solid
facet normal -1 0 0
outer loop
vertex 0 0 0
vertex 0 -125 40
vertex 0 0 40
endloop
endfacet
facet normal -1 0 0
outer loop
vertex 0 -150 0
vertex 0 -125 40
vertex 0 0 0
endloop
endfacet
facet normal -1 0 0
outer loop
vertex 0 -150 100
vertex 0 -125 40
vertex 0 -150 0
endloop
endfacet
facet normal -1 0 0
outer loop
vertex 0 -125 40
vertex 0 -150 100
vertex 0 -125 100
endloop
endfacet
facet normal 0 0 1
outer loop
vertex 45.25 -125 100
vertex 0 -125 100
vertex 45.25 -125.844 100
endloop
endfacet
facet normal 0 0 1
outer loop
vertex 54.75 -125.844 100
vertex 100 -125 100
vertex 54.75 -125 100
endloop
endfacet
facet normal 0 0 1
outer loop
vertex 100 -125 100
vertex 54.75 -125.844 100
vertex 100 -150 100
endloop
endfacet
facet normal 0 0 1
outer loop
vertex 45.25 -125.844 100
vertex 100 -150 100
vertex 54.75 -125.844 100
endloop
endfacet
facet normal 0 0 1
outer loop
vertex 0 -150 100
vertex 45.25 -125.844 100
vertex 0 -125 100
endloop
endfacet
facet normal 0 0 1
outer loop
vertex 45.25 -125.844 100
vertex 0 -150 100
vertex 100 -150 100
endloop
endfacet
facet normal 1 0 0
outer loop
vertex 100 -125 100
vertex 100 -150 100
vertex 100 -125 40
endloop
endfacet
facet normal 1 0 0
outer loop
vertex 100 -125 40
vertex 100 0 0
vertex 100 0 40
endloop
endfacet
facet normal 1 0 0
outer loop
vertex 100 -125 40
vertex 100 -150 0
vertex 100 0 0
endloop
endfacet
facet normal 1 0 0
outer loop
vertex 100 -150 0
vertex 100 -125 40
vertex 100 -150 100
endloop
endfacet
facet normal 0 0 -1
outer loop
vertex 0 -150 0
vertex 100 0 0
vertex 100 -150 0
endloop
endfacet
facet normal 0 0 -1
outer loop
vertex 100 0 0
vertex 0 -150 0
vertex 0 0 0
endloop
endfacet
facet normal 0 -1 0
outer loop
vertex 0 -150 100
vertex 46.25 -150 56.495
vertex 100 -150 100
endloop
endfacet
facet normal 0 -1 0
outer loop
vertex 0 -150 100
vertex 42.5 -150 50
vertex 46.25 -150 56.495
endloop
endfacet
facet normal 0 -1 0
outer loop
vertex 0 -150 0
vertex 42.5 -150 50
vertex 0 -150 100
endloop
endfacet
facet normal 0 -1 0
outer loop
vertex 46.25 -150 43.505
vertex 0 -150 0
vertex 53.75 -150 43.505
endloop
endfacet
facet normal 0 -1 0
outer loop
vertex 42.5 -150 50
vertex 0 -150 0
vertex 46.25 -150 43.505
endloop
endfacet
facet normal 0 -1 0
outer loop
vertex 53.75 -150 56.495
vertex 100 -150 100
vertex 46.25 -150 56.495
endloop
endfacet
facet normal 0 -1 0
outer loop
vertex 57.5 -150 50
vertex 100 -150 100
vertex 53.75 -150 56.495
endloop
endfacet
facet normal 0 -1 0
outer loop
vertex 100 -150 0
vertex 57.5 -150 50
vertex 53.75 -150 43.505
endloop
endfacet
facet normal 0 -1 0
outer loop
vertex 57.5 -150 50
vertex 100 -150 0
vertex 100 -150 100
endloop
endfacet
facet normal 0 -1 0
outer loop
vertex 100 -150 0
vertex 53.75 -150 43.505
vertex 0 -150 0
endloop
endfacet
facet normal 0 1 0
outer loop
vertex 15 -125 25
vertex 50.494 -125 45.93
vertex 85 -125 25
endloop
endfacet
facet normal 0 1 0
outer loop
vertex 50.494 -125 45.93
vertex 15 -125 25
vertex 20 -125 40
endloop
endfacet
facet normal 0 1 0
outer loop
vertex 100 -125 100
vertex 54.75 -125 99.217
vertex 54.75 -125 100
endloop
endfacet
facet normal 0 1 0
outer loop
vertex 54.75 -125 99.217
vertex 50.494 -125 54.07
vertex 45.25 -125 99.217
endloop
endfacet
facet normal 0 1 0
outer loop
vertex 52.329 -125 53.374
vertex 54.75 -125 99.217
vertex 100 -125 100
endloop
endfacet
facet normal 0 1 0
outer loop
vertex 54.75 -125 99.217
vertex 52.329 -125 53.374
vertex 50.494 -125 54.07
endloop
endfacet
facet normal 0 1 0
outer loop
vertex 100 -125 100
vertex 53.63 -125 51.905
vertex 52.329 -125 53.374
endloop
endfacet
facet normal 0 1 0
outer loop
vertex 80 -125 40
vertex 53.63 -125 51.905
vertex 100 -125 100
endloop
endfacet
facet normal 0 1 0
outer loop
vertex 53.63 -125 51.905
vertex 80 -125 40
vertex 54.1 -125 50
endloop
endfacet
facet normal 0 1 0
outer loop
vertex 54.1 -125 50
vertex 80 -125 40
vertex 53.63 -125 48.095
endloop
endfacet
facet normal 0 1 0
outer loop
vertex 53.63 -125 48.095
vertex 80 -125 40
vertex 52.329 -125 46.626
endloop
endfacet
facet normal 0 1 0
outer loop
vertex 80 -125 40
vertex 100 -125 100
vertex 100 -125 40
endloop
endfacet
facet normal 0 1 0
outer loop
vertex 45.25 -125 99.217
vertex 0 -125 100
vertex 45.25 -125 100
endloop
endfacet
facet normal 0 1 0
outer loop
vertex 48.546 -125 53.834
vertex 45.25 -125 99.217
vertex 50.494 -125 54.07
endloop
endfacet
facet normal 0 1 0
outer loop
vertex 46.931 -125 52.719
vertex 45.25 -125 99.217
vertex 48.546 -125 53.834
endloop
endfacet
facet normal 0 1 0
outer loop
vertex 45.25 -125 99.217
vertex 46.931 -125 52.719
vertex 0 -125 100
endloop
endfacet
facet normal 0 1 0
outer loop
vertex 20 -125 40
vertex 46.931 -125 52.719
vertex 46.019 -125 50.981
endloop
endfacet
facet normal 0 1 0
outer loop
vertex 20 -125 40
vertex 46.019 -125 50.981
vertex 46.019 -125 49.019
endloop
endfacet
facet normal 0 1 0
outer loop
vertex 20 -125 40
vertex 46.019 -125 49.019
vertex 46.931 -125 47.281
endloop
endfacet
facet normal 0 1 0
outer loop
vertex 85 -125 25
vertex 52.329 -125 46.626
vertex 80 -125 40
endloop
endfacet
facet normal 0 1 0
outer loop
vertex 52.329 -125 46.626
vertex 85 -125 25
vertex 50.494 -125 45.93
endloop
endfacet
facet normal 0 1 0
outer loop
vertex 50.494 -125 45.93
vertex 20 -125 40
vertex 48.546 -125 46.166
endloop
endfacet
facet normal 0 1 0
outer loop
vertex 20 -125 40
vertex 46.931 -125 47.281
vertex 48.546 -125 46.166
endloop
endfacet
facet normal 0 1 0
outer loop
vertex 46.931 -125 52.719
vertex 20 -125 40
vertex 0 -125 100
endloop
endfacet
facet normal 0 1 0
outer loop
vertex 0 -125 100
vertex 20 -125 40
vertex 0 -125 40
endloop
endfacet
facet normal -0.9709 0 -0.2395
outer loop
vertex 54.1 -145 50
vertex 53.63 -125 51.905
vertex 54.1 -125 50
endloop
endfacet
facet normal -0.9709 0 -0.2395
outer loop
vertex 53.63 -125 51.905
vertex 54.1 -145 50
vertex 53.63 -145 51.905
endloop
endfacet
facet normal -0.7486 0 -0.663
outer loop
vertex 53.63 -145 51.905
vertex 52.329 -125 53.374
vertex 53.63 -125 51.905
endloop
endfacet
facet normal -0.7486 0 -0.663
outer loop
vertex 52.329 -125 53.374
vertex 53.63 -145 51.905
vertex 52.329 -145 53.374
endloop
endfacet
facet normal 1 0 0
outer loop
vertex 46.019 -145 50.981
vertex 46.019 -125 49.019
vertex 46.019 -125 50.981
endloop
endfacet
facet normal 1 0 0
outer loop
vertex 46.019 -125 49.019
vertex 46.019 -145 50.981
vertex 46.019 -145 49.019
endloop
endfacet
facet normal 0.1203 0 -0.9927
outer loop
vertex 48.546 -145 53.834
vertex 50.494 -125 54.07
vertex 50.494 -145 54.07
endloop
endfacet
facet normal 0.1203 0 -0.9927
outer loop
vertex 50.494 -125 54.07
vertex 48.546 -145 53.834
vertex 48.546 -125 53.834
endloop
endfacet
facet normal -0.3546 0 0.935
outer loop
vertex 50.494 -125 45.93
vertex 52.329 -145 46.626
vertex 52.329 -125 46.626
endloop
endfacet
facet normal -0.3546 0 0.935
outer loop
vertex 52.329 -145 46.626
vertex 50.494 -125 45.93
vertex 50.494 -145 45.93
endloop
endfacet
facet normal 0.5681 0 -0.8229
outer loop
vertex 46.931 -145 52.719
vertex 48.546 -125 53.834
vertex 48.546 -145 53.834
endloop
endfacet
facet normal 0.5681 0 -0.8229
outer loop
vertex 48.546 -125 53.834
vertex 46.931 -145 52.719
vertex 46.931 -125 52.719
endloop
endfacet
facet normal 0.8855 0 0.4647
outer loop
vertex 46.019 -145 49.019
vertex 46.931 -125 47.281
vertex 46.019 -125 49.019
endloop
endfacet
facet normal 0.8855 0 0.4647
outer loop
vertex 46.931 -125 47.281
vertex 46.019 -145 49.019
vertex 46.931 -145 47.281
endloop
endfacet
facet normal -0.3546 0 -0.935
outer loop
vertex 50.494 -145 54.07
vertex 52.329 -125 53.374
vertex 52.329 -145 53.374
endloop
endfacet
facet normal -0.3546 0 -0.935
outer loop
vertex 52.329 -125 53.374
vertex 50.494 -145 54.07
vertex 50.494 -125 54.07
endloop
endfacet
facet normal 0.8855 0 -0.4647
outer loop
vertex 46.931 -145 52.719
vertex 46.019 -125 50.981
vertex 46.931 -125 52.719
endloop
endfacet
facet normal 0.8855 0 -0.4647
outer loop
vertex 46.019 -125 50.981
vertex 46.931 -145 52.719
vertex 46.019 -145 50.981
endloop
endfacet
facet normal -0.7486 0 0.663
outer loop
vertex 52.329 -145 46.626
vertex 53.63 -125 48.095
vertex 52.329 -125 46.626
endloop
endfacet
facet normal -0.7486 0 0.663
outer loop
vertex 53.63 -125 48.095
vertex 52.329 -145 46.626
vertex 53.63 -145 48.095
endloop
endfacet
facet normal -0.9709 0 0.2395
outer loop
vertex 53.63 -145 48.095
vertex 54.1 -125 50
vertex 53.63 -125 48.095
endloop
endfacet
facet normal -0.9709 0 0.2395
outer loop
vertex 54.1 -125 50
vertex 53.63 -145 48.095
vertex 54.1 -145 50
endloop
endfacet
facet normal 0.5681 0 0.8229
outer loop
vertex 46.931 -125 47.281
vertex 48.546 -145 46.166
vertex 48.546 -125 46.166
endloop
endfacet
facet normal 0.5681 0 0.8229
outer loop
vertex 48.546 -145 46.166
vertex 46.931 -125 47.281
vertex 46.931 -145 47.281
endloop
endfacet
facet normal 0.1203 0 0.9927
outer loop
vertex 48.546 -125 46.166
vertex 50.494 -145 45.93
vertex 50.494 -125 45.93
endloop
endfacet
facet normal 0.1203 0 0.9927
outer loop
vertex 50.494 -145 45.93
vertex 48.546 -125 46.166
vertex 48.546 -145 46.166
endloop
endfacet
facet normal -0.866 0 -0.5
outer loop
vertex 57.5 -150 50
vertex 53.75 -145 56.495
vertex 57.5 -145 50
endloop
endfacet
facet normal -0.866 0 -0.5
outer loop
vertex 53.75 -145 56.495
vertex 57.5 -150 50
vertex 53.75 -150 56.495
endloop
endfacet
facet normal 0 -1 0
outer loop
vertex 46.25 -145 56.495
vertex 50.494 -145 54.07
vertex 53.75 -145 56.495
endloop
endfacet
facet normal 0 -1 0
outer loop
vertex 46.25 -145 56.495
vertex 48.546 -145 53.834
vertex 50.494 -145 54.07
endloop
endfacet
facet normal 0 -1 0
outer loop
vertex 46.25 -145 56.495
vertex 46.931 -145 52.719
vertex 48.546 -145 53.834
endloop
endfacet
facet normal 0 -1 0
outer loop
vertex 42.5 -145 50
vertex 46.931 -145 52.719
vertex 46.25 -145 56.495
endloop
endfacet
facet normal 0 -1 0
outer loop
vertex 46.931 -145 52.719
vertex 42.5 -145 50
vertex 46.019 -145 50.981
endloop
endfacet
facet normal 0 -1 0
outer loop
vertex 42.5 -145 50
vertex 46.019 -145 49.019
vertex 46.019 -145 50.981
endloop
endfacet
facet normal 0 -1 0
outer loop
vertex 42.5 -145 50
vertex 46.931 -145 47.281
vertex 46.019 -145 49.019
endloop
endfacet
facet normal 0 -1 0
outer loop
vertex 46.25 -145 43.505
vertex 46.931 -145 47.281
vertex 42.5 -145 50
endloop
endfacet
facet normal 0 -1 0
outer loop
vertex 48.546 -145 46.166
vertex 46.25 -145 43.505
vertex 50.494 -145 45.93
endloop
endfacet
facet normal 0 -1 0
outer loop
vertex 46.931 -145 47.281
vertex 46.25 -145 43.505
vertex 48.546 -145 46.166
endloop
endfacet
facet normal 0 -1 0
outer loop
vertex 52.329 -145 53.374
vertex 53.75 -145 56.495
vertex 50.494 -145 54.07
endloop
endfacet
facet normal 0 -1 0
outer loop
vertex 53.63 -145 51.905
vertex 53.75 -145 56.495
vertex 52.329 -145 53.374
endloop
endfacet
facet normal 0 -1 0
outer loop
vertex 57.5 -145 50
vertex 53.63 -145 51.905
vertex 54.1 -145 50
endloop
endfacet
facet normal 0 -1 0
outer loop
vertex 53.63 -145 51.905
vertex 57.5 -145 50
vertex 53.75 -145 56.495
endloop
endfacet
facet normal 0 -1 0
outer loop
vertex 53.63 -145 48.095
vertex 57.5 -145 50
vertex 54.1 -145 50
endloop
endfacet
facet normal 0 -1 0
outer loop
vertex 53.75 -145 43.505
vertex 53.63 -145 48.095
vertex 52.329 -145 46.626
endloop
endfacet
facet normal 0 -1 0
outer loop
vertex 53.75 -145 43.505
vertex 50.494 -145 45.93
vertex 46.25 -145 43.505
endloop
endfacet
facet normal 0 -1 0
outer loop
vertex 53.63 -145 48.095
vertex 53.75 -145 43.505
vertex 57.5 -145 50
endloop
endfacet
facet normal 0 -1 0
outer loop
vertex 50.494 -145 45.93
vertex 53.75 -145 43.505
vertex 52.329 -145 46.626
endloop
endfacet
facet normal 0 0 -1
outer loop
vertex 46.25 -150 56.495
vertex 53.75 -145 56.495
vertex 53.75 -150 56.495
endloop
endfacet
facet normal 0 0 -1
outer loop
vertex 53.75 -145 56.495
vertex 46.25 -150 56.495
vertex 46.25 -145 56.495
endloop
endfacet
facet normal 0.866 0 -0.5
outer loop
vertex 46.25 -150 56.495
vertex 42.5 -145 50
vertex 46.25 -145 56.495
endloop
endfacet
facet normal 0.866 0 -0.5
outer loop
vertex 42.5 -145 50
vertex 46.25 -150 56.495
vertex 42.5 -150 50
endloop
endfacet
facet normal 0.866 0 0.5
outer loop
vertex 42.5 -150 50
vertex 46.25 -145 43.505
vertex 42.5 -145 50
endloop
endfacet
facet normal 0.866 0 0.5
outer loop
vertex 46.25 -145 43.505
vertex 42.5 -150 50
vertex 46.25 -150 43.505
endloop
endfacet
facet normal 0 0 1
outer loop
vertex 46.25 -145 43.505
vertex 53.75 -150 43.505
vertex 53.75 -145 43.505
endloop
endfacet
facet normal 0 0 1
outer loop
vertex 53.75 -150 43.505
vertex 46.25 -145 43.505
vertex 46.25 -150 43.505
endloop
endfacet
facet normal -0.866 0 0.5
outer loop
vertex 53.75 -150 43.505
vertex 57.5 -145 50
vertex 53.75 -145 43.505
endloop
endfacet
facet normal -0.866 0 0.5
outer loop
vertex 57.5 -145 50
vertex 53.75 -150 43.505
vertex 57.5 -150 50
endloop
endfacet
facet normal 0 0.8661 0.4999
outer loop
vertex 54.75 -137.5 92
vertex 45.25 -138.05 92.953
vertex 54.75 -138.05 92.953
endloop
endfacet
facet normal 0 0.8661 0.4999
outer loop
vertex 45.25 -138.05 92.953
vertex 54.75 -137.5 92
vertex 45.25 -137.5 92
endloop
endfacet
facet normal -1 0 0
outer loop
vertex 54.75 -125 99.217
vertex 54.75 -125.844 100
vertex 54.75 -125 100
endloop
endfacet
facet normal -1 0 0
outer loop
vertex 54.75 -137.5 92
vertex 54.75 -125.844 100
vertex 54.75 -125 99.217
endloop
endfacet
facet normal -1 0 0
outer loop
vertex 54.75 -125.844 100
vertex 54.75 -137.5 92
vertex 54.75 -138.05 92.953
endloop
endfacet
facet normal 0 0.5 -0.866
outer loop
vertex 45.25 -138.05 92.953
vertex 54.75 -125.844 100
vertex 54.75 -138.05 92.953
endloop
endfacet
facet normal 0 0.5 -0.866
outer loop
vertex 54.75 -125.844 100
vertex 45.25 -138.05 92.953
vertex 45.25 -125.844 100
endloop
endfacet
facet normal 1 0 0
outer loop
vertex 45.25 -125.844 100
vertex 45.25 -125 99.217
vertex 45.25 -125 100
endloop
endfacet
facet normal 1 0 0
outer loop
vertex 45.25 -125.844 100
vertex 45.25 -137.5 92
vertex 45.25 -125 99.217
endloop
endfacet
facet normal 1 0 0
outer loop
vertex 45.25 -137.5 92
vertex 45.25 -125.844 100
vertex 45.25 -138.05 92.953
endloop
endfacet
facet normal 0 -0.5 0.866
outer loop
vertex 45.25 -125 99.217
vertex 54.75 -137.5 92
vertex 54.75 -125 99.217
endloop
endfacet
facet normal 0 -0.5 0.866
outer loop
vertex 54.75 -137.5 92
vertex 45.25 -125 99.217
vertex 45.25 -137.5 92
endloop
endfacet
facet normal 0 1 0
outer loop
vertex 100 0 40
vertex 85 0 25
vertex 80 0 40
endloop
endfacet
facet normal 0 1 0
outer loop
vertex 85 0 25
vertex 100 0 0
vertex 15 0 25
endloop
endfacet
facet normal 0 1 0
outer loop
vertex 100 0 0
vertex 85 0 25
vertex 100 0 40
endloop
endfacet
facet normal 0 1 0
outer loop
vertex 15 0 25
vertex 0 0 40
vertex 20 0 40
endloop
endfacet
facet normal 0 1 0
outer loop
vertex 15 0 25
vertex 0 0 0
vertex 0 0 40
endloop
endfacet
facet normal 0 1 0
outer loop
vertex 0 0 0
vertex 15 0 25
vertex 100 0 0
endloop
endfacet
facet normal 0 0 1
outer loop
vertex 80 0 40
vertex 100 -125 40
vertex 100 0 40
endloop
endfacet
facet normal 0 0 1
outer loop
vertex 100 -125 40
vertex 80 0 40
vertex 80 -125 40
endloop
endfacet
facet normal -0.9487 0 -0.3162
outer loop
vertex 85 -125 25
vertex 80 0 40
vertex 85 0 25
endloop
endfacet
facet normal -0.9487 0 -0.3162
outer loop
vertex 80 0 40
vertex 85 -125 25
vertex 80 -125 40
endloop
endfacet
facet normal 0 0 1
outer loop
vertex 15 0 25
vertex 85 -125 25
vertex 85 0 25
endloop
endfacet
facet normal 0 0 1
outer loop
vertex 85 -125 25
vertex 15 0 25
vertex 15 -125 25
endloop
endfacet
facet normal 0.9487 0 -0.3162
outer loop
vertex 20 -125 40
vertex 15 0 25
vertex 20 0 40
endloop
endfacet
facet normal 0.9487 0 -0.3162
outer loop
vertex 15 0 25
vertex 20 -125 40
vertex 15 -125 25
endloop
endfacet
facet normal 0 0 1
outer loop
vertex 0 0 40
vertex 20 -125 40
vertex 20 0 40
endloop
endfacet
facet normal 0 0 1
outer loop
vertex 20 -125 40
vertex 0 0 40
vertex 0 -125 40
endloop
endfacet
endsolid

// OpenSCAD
rotate([90,0,0]) linear_extrude(150) {polygon(points=[[0,0],[100,0],[100,40],[80,40],[85,25],[15,25],[20,40],[0,40]]);
  };
  
   translate([0,-150,0]) difference() {
      cube([100,25,100]);
   #translate([50,10,50])rotate([90,0,0]) cylinder(h=30,r=4.1, center=true); 
 #translate([50,-0,50])rotate([90,0,0]) cylinder(h=10,r=15/2,$fn=6, center=true); 
      
#translate([50-9.5/2,13-0.5,100-3.5-4.5]) rotate([30,0,0])  cube([9.5,15,1.1]);
      
  };
